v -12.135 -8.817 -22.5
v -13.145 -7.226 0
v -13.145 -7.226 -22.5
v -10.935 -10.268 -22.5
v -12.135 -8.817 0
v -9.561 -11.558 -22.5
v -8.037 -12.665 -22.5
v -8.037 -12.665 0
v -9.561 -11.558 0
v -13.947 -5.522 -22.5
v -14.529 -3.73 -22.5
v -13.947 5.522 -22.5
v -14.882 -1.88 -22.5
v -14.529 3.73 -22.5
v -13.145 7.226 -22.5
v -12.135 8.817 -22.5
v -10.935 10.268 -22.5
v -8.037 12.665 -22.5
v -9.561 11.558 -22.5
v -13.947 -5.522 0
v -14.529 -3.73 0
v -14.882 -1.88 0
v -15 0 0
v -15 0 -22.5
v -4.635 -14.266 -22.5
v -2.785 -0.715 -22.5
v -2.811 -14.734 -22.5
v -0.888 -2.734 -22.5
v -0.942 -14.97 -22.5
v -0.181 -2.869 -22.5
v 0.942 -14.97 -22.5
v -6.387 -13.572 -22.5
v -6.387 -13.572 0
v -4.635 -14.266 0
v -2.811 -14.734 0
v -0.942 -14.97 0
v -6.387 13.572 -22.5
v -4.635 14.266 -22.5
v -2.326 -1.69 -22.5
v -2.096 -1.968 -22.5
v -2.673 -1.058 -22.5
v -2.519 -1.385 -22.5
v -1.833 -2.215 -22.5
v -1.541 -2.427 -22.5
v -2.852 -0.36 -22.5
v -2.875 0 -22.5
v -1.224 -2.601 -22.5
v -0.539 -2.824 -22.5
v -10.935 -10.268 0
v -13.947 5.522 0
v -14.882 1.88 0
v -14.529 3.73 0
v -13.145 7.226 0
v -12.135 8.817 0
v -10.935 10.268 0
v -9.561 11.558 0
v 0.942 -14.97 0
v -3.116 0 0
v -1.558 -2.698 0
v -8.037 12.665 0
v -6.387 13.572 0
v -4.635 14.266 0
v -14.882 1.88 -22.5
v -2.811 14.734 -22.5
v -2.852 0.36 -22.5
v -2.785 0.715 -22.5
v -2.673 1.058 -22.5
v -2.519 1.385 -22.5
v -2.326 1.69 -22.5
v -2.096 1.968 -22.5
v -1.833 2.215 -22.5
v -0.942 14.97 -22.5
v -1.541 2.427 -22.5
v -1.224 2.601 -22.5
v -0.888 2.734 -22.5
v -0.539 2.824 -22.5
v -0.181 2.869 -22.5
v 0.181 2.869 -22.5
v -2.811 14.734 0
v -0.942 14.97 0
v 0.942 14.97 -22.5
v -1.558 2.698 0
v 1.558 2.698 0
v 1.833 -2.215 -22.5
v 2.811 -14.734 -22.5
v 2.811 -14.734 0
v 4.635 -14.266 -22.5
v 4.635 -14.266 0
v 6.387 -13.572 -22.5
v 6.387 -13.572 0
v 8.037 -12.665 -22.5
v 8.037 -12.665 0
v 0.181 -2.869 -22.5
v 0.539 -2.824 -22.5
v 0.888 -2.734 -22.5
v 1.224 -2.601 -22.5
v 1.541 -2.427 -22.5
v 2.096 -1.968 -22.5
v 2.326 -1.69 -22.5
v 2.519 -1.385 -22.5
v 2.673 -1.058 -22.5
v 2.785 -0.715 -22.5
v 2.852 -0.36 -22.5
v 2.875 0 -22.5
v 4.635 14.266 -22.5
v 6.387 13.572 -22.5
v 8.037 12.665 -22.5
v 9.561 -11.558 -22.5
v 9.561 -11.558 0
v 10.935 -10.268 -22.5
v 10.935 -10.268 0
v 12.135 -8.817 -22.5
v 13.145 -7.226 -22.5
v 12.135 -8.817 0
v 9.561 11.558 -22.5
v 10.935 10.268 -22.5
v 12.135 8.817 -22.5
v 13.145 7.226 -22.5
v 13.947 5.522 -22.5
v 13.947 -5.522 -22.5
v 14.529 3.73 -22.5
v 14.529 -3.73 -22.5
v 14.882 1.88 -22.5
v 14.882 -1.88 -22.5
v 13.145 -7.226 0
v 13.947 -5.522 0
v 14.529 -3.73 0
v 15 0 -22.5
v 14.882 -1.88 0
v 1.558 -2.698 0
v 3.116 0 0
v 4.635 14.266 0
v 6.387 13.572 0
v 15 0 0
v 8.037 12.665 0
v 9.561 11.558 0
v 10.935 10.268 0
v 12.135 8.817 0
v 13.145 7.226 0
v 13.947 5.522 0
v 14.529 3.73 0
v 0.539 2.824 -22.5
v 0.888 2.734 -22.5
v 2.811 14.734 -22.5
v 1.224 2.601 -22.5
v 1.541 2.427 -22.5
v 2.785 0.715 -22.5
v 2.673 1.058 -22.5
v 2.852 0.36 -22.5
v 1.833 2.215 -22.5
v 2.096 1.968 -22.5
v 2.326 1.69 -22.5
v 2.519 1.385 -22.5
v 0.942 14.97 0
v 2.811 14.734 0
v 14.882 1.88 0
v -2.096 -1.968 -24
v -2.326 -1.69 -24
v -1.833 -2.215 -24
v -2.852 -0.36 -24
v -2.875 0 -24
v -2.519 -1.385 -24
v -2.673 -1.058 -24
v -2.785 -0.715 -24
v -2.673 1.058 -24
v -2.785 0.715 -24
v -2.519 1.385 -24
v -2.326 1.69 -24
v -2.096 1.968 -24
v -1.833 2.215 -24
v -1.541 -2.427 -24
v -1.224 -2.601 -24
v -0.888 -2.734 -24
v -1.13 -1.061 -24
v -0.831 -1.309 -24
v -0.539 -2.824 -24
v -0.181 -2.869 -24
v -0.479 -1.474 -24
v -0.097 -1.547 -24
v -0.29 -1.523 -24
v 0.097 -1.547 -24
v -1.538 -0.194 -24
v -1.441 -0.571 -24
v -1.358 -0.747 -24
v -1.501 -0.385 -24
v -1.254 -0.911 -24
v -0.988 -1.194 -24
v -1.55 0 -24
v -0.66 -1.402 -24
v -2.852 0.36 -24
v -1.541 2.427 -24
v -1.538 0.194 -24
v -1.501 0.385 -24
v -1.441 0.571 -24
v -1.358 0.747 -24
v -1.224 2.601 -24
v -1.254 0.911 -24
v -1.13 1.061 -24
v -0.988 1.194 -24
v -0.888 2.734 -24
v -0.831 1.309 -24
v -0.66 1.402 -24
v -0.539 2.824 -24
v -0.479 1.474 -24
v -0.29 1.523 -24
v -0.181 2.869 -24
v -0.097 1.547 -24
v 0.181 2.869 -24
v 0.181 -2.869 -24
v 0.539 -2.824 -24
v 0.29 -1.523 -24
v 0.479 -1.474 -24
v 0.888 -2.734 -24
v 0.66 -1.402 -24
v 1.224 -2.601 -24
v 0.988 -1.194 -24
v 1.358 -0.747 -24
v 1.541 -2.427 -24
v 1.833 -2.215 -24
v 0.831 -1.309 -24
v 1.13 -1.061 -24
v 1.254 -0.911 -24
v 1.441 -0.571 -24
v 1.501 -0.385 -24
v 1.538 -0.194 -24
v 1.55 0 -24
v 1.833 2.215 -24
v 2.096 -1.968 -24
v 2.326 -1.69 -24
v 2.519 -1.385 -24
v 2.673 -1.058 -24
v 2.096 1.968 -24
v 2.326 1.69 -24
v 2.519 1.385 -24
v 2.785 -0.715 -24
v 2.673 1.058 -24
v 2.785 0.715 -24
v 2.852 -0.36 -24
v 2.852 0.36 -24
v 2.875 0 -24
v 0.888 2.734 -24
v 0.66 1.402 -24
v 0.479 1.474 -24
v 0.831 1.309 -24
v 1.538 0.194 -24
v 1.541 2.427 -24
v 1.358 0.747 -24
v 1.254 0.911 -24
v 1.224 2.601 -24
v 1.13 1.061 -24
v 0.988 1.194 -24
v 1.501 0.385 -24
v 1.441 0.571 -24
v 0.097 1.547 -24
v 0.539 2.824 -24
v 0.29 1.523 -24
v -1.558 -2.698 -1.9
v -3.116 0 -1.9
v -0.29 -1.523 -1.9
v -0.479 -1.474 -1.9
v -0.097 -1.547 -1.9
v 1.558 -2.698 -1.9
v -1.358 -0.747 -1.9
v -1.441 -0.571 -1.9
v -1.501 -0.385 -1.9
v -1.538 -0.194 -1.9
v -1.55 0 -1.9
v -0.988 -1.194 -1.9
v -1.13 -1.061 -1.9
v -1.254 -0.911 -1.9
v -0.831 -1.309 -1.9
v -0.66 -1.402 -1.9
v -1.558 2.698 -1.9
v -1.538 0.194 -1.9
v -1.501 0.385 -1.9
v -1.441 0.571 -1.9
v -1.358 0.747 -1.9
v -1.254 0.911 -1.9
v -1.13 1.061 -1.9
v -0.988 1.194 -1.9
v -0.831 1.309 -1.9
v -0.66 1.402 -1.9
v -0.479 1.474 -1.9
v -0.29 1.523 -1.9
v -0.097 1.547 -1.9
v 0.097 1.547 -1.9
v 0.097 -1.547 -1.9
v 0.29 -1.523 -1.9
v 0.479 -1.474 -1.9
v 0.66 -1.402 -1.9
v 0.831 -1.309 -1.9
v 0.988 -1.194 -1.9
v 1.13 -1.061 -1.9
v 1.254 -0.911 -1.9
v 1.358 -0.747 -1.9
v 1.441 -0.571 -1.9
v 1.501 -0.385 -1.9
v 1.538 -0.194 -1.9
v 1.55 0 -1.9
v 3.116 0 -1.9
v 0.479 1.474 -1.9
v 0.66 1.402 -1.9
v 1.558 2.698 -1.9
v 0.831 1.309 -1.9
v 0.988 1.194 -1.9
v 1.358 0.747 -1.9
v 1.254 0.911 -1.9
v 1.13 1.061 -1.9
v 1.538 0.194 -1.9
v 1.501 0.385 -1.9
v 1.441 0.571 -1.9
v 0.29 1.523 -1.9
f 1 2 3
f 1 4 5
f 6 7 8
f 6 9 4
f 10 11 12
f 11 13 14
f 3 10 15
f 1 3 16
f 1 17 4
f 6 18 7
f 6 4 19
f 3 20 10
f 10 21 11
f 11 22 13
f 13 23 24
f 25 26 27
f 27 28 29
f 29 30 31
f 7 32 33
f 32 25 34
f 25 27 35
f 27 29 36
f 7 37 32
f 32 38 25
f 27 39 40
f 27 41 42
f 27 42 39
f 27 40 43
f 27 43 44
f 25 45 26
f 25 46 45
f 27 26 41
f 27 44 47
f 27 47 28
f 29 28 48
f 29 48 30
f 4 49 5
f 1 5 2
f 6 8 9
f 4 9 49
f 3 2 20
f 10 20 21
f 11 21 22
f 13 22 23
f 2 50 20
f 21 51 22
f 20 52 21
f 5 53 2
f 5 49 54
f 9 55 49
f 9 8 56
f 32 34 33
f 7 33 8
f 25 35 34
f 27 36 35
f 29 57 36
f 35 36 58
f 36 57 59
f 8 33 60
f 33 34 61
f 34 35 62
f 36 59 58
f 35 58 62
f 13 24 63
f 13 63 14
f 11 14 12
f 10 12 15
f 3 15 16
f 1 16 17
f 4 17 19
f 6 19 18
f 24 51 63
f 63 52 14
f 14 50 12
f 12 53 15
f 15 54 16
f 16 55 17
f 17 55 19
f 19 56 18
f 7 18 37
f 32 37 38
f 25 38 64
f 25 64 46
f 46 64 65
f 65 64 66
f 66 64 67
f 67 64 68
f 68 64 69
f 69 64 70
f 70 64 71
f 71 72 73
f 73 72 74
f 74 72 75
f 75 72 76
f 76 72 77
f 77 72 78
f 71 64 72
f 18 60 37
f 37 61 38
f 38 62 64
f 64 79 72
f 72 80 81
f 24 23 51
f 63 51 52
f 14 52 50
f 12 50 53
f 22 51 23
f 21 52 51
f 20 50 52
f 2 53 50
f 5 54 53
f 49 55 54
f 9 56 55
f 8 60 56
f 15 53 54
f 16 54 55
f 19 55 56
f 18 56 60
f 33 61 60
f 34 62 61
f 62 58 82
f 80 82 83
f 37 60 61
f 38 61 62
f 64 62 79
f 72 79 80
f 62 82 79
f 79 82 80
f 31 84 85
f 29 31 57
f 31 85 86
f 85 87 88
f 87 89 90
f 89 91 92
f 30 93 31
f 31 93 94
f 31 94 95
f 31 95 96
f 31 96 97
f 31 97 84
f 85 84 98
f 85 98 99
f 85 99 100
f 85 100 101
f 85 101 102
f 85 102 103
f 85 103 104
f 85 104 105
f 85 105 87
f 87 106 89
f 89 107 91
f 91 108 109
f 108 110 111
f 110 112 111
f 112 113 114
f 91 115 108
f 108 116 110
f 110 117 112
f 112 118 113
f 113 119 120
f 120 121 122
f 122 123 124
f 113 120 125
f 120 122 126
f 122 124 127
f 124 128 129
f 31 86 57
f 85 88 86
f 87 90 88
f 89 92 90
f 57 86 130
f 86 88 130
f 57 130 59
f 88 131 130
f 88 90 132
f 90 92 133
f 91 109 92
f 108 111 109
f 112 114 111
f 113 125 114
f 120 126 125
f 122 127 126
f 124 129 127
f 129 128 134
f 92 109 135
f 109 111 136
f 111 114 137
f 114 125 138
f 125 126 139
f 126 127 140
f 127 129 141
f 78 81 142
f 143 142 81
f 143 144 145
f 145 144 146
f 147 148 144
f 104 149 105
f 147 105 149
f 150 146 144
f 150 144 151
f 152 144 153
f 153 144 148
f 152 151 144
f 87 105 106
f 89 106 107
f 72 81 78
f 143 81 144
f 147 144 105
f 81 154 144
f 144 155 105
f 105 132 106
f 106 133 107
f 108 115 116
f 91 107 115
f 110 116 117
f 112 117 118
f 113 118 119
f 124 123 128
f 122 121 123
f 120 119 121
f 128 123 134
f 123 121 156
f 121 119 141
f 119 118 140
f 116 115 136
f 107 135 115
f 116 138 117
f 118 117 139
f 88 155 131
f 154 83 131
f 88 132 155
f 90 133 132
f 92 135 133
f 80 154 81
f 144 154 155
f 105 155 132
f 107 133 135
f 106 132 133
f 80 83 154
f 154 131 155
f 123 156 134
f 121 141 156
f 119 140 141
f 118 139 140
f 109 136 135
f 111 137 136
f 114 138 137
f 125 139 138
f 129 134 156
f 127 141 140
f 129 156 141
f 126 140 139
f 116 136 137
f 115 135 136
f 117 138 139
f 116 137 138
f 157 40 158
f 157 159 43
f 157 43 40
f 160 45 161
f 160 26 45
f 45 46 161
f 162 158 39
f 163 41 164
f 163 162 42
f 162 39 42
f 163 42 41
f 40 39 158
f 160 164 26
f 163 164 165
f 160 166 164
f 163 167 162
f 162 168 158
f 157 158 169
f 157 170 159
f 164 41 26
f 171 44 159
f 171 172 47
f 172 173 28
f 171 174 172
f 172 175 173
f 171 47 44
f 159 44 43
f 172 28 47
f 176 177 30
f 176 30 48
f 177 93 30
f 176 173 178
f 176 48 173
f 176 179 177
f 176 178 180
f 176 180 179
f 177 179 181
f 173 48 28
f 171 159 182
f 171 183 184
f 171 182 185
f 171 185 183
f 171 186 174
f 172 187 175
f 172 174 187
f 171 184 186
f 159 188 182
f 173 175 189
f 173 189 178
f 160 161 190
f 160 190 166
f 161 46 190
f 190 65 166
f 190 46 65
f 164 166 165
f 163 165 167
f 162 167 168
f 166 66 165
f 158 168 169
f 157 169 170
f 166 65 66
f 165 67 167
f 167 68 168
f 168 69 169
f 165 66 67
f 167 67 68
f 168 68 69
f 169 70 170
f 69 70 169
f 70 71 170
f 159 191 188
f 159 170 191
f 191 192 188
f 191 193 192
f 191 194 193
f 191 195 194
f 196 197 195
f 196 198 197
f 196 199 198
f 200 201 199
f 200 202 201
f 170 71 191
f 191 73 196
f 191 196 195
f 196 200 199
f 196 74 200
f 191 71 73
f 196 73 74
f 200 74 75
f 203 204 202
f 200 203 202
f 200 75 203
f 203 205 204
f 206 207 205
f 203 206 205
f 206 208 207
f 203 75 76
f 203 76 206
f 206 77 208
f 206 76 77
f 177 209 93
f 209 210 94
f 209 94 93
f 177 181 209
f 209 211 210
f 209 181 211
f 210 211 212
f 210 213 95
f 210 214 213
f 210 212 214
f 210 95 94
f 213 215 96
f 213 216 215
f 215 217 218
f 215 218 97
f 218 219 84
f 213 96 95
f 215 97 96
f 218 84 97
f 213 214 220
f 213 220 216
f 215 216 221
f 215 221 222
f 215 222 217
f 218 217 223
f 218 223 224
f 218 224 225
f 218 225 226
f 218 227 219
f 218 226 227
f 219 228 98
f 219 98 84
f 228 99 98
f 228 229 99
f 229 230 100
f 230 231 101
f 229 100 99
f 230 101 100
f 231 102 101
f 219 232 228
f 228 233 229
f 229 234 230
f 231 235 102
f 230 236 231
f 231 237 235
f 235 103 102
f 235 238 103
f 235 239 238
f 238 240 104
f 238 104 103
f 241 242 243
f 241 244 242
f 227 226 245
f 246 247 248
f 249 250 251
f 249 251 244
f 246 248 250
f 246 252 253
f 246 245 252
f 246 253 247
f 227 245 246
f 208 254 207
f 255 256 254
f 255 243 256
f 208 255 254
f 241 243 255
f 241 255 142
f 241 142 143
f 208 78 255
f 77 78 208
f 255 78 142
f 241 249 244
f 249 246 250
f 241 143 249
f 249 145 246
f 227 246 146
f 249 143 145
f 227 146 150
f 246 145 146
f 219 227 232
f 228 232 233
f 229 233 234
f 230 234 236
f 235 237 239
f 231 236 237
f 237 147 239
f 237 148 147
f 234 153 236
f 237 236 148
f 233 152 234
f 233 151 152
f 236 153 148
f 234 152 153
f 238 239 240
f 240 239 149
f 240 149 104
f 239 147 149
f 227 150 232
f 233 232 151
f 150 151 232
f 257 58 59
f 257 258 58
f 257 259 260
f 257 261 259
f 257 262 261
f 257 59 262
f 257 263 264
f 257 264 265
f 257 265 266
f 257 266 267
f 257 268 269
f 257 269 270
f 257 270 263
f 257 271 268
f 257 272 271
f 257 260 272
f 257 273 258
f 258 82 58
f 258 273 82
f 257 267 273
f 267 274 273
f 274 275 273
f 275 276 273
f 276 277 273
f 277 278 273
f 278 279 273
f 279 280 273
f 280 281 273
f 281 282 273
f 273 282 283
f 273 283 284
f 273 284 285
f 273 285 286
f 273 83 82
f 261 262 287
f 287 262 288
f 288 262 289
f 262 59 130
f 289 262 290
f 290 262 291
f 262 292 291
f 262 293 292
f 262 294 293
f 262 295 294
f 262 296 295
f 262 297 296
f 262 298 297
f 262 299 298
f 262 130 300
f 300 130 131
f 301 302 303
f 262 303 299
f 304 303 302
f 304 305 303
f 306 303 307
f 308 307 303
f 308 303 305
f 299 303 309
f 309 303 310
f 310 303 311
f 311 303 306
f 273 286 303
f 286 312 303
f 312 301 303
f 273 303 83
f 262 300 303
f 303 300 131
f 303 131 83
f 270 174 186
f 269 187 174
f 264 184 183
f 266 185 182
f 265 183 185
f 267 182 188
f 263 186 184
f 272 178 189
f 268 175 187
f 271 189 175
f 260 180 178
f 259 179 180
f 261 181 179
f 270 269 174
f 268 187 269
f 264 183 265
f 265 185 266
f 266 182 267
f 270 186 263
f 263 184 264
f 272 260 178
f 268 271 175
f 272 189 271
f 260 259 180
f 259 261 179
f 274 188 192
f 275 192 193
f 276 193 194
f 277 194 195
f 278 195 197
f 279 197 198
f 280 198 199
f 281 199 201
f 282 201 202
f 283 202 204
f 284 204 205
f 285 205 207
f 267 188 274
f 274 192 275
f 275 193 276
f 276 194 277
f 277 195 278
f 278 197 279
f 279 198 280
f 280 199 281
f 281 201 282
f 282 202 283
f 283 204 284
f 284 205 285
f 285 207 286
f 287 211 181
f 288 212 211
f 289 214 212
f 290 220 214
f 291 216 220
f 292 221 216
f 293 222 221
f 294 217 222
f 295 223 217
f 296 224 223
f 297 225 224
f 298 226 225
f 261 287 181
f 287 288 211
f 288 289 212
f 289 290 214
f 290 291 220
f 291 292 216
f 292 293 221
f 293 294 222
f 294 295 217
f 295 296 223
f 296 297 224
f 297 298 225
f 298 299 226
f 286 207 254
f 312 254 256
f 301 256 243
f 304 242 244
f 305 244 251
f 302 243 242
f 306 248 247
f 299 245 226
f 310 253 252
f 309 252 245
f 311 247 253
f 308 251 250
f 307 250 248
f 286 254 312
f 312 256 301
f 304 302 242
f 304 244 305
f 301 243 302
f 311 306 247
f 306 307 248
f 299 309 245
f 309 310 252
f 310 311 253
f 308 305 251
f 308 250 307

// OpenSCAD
$fn = 50;

difference() {
	union() {
		translate(v = [0, 0, -22.5]) {
			cylinder(h = 22.5, r = 15.0);
		}
		#translate(v = [0, 0, -24.0]) {
			cylinder(h = 24, r = 2.875);
		}
	}
	union() {
		translate(v = [0, 0, 0]) {
			rotate(a = [0, 0, 0]) {
				difference() {
					union() {
						translate(v = [0, 0, -1.9]) {
							linear_extrude(height = 1.9) {
								polygon(points = [[3.1158, 0.0], [1.5579000000000005, 2.698361953111554], [-1.5578999999999994, 2.6983619531115544], [-3.1158, 3.815754496783323e-16], [-1.5579000000000014, -2.6983619531115535], [1.557899999999998, -2.6983619531115552]]);
							}
						}
					}
					union();
				}
			}
		}
		#translate(v = [0, 0, -100.0]) {
			cylinder(h = 200, r = 1.55);
		}
	}
}
